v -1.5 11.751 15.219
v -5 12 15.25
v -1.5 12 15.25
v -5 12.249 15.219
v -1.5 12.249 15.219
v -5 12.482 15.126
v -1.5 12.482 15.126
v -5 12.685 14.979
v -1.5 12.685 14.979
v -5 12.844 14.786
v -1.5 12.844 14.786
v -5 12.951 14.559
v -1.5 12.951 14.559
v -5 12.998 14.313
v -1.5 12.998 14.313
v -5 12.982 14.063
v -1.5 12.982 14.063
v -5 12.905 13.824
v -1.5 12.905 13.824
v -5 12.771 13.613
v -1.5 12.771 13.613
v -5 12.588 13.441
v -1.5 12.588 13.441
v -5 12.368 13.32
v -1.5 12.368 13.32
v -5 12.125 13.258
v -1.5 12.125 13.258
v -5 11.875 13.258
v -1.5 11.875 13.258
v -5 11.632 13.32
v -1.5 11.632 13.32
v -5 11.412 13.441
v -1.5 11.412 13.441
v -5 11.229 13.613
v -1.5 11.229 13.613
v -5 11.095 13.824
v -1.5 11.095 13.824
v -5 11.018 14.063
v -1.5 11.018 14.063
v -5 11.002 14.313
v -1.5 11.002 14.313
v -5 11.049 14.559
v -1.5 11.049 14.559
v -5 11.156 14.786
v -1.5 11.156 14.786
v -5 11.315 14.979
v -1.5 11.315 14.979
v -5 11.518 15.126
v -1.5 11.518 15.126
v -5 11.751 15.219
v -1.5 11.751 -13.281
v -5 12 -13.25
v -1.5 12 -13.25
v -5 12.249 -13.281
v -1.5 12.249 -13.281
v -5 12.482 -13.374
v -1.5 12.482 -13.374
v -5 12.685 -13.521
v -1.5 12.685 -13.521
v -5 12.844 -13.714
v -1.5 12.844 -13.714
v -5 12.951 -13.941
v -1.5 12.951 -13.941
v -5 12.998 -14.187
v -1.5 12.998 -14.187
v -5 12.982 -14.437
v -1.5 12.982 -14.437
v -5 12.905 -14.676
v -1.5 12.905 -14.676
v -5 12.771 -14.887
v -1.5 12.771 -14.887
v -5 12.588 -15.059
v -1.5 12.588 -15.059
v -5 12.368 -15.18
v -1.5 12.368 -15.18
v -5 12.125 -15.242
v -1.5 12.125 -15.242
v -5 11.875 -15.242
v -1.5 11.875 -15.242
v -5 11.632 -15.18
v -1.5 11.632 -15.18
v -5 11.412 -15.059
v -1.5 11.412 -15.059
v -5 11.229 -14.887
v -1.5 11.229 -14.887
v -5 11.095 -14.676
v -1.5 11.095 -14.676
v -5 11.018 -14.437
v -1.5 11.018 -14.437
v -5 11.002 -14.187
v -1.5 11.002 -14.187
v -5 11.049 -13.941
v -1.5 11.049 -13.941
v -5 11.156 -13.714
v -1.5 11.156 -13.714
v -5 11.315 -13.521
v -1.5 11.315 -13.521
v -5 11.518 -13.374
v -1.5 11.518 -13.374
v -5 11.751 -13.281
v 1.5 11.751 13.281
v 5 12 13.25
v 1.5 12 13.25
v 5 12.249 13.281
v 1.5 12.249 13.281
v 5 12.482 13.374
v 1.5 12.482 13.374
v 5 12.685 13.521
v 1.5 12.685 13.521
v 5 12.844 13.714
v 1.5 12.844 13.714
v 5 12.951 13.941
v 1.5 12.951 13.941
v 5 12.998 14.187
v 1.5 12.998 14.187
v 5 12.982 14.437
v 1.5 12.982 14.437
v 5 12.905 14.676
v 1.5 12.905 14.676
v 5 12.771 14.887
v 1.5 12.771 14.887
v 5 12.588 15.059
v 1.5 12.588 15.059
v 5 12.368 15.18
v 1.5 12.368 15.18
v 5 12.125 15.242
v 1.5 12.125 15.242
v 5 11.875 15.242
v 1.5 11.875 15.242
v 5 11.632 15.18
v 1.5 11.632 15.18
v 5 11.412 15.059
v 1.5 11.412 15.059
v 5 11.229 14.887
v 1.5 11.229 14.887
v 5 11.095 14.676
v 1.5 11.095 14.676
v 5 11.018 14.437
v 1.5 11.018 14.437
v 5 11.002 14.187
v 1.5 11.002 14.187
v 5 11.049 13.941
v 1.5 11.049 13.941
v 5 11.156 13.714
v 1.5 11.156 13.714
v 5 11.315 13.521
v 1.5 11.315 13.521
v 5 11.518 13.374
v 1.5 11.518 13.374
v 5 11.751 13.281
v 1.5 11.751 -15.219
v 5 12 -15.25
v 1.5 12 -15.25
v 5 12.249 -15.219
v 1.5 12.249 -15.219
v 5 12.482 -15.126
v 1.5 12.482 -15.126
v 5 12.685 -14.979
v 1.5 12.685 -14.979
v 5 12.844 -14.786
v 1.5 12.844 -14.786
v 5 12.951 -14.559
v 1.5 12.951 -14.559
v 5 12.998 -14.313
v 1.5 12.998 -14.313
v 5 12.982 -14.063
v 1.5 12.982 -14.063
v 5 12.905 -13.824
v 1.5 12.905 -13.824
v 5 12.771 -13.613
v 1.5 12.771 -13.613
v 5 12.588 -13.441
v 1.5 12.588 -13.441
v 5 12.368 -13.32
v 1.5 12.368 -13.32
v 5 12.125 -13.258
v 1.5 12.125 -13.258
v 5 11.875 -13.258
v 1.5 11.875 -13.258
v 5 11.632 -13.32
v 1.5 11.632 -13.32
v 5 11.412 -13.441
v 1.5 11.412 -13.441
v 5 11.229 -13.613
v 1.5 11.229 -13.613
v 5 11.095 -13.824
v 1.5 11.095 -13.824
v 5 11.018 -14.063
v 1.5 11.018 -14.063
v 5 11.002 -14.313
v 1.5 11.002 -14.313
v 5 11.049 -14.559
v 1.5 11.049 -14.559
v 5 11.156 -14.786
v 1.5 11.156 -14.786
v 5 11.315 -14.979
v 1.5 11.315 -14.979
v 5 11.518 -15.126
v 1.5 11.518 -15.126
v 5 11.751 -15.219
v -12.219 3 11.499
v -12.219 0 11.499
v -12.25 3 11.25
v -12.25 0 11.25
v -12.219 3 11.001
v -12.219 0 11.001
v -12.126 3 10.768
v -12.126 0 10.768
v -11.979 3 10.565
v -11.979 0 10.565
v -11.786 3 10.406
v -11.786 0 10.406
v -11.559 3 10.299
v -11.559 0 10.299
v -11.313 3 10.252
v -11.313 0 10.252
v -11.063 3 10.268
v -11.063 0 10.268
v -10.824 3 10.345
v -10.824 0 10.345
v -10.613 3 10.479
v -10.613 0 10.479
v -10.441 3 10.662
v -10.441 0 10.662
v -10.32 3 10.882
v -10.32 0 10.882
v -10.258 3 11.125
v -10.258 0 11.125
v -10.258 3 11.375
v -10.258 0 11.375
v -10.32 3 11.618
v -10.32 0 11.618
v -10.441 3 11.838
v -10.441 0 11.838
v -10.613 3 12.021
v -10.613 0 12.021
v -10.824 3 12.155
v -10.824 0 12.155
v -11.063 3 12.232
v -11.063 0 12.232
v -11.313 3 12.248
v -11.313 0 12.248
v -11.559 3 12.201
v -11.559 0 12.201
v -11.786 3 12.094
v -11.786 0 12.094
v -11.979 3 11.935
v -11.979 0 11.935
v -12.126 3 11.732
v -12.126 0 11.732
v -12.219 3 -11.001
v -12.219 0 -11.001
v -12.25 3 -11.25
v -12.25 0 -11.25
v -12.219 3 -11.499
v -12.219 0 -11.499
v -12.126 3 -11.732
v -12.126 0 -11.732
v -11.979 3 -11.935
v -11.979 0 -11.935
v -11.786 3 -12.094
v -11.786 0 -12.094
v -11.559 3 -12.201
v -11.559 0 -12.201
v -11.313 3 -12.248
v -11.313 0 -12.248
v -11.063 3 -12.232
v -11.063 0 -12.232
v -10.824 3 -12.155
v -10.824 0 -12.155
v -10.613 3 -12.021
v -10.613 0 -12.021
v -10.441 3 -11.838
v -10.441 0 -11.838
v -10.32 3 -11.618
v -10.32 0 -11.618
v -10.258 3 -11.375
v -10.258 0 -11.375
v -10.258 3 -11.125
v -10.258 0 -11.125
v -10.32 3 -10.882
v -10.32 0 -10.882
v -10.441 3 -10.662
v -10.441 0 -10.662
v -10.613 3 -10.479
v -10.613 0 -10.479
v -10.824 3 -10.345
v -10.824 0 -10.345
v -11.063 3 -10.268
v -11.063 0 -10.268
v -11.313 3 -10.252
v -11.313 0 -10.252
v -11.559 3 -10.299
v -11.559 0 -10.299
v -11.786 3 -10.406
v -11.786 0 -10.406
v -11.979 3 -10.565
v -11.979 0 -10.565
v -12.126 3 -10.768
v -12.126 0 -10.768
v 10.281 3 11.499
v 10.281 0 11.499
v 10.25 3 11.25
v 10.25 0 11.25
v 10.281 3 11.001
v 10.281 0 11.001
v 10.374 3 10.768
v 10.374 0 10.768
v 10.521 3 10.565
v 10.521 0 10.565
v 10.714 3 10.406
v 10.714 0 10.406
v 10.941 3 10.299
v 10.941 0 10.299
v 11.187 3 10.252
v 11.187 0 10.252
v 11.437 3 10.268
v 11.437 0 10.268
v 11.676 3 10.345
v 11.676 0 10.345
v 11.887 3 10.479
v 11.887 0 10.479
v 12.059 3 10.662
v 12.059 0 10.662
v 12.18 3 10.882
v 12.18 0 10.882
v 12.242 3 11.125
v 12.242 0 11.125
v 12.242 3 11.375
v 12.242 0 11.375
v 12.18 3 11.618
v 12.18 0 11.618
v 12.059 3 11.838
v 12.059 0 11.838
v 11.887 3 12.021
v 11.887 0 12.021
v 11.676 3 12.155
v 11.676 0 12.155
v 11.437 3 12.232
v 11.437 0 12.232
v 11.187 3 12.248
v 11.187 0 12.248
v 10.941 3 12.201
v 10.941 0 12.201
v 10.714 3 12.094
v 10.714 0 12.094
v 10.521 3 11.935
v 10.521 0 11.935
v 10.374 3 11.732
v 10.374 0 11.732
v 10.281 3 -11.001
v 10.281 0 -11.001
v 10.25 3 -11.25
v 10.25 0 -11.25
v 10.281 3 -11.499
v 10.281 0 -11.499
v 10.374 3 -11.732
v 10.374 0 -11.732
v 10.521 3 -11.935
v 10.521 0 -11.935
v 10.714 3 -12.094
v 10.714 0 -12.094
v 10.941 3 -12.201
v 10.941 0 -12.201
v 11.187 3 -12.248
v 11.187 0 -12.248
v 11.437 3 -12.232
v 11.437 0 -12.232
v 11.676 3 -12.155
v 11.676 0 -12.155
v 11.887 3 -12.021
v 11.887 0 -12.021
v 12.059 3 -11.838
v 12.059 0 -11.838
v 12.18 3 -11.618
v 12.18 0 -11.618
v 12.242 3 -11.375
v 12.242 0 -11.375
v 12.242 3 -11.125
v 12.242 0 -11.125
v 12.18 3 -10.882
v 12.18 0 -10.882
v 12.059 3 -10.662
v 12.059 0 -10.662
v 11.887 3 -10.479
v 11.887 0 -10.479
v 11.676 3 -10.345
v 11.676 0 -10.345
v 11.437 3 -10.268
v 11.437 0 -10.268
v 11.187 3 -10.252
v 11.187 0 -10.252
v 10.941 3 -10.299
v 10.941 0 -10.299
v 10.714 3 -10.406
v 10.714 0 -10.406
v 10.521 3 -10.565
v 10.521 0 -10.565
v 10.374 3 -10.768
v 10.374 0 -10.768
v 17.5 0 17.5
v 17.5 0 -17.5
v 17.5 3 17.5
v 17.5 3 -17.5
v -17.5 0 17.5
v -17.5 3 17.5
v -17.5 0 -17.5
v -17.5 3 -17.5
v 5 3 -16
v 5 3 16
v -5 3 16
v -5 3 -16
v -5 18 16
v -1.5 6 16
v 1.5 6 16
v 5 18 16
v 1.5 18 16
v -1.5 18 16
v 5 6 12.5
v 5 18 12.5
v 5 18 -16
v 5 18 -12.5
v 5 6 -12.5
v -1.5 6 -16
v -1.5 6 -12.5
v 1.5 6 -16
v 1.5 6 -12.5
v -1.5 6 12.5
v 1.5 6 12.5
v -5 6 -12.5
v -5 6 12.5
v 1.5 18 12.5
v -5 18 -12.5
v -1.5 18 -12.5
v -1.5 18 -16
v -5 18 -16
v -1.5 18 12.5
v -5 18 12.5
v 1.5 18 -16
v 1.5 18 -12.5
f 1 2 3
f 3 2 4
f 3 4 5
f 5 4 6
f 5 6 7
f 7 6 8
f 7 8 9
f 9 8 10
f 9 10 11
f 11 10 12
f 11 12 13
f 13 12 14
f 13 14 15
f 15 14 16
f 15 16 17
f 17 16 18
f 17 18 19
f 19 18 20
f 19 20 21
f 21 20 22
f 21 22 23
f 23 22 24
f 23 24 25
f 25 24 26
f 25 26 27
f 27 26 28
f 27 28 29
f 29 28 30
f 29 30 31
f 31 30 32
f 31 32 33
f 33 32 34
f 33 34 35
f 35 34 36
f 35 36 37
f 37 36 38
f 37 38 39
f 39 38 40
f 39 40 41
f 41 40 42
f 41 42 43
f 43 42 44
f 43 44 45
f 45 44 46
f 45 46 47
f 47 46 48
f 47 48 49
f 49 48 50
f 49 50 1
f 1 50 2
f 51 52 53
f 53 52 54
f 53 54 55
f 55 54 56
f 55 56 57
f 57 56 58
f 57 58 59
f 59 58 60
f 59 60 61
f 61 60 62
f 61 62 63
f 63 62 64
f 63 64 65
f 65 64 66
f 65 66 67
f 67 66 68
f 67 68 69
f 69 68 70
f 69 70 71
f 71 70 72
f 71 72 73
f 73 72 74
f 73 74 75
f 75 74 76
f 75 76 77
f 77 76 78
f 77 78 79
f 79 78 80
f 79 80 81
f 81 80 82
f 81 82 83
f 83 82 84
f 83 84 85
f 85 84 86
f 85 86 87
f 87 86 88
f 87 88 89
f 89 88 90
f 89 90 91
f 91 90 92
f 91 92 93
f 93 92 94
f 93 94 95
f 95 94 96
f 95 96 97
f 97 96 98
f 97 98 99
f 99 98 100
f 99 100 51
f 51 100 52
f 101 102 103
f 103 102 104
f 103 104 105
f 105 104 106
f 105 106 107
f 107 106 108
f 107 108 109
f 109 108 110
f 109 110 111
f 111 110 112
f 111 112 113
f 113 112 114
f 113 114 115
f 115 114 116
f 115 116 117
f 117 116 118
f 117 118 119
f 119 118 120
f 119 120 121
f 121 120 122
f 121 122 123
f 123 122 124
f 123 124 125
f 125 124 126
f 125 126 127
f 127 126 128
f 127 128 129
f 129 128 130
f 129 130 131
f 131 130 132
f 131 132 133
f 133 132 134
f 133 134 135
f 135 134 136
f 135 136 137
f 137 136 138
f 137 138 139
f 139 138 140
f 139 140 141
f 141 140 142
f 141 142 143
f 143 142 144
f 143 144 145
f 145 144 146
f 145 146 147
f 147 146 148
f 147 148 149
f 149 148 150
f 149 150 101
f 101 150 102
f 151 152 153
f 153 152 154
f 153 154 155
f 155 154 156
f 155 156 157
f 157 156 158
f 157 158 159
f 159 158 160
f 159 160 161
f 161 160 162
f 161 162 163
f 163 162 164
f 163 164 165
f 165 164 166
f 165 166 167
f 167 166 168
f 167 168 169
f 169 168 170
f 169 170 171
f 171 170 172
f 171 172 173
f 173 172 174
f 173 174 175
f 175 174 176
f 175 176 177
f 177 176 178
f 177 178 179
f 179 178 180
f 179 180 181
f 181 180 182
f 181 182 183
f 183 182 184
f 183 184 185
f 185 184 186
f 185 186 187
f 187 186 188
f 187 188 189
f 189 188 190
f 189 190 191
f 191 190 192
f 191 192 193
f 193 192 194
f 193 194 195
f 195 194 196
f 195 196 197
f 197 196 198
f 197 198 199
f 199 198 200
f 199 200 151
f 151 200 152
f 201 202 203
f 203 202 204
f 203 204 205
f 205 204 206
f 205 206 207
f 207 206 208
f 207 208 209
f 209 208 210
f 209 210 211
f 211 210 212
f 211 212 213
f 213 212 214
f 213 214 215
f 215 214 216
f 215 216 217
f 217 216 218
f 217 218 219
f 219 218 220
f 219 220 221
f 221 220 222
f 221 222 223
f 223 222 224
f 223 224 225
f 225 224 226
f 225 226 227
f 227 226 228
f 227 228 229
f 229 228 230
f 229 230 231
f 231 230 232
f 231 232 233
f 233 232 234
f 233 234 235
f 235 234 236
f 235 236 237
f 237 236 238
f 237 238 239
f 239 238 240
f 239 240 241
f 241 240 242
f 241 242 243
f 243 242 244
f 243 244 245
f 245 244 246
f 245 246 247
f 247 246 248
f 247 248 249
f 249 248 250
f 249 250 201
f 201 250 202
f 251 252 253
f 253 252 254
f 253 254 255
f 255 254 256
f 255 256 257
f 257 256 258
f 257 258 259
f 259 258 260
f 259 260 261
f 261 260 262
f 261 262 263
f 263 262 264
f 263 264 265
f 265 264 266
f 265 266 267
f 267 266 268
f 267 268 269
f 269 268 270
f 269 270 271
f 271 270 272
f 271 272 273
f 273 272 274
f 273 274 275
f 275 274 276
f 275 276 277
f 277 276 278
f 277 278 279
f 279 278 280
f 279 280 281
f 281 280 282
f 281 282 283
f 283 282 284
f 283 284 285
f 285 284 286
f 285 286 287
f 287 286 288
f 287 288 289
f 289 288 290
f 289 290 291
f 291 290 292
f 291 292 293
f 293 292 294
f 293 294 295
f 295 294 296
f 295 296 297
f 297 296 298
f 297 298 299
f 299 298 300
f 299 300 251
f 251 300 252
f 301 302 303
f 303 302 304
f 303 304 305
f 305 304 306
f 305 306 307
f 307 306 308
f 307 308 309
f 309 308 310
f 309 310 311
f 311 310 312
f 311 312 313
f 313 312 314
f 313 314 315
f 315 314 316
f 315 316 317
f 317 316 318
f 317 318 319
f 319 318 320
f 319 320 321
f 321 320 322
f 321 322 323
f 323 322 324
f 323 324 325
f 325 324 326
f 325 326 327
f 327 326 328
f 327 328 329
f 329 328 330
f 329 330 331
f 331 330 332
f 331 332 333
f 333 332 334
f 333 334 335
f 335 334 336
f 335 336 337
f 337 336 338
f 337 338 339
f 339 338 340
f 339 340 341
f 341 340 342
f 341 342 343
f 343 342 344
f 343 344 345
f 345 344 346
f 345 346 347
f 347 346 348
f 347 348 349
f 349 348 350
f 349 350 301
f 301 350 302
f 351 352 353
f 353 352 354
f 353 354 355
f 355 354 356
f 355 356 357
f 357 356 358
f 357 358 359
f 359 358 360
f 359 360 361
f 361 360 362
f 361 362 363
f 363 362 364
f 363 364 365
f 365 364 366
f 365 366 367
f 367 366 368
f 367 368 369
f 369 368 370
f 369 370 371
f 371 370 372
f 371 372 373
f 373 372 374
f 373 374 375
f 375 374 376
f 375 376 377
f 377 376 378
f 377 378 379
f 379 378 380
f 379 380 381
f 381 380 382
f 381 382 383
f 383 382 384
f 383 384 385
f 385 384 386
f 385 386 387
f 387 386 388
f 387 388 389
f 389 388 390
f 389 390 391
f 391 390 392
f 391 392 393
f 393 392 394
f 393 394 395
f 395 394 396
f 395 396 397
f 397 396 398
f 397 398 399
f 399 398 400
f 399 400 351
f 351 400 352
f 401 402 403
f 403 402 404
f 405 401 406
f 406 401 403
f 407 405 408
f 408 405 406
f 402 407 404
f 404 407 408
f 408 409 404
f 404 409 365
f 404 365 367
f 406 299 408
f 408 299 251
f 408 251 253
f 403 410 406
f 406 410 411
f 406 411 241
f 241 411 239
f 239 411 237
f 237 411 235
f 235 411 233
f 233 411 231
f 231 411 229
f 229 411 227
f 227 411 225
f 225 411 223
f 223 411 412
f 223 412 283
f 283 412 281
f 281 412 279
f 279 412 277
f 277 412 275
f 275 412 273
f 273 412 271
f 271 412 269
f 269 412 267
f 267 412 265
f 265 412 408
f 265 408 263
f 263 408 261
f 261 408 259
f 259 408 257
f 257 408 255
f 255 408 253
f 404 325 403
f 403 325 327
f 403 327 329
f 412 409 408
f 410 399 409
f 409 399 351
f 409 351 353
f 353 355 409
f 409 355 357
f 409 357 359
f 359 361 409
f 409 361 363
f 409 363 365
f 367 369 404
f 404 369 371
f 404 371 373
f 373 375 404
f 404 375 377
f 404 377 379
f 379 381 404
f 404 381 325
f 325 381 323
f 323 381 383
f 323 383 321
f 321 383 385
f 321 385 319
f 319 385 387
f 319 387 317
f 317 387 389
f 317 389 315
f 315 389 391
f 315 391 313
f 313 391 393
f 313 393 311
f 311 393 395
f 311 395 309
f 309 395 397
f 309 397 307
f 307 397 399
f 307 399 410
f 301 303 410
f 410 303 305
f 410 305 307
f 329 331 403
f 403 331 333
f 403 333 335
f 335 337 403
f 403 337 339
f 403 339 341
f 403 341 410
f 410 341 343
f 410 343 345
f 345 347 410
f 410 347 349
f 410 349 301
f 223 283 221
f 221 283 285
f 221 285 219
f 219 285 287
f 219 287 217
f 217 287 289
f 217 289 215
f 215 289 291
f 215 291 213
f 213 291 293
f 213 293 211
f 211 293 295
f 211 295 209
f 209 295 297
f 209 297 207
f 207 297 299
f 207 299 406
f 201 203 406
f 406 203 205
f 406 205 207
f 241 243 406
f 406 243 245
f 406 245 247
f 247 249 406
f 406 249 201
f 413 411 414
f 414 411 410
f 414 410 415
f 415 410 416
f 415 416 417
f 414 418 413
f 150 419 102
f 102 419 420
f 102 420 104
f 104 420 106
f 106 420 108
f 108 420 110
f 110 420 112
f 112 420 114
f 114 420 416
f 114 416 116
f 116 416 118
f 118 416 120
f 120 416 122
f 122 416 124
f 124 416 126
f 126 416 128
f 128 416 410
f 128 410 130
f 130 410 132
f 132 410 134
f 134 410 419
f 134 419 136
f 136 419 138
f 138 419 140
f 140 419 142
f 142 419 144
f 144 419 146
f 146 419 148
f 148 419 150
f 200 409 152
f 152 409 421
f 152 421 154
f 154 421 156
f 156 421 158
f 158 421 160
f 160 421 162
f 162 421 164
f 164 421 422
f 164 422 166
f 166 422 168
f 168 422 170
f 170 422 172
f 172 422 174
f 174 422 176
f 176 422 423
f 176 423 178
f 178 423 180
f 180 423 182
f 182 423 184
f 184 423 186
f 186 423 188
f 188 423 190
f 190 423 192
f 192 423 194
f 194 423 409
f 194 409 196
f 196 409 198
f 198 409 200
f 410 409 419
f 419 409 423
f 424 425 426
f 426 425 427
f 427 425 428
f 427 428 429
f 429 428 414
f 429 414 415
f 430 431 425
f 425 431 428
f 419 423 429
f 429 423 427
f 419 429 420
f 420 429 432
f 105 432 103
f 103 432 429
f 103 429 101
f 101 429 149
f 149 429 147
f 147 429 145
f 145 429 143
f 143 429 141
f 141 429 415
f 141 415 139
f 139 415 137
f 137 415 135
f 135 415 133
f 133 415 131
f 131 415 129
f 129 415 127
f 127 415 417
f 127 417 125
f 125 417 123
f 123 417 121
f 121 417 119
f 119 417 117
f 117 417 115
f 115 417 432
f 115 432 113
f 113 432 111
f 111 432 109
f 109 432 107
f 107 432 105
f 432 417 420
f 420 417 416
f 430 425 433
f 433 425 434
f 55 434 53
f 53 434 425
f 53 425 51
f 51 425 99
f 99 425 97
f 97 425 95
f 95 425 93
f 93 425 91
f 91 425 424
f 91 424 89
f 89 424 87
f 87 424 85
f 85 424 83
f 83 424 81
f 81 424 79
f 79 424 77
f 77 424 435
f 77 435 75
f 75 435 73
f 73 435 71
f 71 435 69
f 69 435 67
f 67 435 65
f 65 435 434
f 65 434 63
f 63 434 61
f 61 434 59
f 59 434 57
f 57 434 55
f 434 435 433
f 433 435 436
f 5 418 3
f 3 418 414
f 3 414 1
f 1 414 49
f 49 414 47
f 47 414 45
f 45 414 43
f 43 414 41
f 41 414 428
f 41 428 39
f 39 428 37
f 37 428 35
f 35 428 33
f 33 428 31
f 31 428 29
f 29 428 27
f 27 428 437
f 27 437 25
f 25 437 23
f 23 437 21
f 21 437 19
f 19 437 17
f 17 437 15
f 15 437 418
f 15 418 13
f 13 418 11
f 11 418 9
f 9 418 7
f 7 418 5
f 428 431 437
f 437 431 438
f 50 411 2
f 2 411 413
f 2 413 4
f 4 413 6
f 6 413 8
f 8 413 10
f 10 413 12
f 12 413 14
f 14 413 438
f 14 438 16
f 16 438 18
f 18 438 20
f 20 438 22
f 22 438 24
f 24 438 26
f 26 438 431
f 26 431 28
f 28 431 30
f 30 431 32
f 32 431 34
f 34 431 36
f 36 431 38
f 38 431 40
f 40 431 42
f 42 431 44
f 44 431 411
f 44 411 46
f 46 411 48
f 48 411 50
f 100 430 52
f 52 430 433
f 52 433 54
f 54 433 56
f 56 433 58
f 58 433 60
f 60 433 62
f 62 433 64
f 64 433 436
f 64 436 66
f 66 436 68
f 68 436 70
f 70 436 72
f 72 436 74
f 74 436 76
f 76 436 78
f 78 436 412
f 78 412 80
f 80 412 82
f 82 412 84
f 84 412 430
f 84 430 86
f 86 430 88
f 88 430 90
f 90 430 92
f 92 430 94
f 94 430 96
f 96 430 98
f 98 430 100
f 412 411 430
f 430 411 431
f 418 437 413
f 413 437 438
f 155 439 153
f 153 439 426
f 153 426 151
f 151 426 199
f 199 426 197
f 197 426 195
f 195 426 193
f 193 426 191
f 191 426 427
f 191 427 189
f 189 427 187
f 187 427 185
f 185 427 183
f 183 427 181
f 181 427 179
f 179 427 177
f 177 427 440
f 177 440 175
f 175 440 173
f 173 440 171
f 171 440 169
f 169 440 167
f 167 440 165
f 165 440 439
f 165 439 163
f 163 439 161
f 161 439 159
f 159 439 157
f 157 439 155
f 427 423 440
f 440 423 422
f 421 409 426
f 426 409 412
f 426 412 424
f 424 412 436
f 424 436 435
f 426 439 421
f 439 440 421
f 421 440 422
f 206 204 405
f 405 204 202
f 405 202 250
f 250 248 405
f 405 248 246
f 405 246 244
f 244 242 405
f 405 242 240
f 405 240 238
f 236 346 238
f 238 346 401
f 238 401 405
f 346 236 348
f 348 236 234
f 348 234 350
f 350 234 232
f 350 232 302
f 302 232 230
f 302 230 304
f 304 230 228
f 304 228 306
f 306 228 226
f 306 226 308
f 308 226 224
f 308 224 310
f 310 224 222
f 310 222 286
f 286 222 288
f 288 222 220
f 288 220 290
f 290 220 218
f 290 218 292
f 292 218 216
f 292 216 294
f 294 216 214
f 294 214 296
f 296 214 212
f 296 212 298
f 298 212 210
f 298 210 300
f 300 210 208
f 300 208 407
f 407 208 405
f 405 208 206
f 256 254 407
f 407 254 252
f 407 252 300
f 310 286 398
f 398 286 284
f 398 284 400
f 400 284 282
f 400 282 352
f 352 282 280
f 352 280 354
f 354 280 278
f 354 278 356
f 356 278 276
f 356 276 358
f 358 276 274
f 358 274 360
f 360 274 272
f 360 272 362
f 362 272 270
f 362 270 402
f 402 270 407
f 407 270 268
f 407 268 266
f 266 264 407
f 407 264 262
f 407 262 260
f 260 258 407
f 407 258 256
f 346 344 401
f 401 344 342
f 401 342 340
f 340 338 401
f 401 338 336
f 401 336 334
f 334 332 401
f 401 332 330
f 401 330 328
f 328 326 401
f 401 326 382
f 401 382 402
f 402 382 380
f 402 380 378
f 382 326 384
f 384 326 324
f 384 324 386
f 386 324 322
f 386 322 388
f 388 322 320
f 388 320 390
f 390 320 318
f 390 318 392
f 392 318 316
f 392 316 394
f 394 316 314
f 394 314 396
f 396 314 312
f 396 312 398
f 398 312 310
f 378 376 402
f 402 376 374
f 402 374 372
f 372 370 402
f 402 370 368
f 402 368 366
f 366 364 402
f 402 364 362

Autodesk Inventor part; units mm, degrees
ref_plane "YZ Plane" through (0, 0, 0) normal (1, 0, 0) x (0, 1, 0)
ref_plane "XZ Plane" through (0, 0, 0) normal (0, 1, 0) x (-1, 0, 0)
ref_plane "XY Plane" through (0, 0, 0) normal (0, 0, 1) x (1, 0, 0)
sketch "Sketch1" plane through (0, 0, 0) normal (0, 1, 0) x (-1, 0, 0)
  circle A0 centre (11.25, 11.25) radius 1
  circle A1 centre (11.25, -11.25) radius 1
  circle A2 centre (-11.25, 11.25) radius 1
  circle A3 centre (-11.25, -11.25) radius 1
  line L0 (-17.5, 17.5) -> (17.5, 17.5)
  line L1 (17.5, 17.5) -> (17.5, -17.5)
  line L2 (17.5, -17.5) -> (-17.5, -17.5)
  line L3 (-17.5, -17.5) -> (-17.5, 17.5)
  line L4 (-5, 16) -> (5, 16)
  line L5 (5, 16) -> (5, -16)
  line L6 (5, -16) -> (-5, -16)
  line L7 (-5, -16) -> (-5, 16)
  line L8 (-5, -16) -> (-1.5, -16)
  line L9 (-1.5, -16) -> (-1.5, -12.5)
  line L10 (-1.5, -12.5) -> (-5, -12.5)
  line L11 (-5, -12.5) -> (-5, -16)
  line L12 (5, -16) -> (1.5, -16)
  line L13 (1.5, -16) -> (1.5, -12.5)
  line L14 (1.5, -12.5) -> (5, -12.5)
  line L15 (5, -12.5) -> (5, -16)
  line L16 (-5, 16) -> (-1.5, 16)
  line L17 (-1.5, 16) -> (-1.5, 12.5)
  line L18 (-1.5, 12.5) -> (-5, 12.5)
  line L19 (-5, 12.5) -> (-5, 16)
  line L20 (5, 16) -> (1.5, 16)
  line L21 (1.5, 16) -> (1.5, 12.5)
  line L22 (1.5, 12.5) -> (5, 12.5)
  line L23 (5, 12.5) -> (5, 16)
  point P0 (0, 0)
extrude "Extrusion1" add sketch "Sketch1" along normal blind 18 contours L4 L17 L18 L7 | L4 L5 L22 L21 | L10 L9 L6 L7 | L5 L6 L13 L14
extrude "Extrusion2" add sketch "Sketch1" along normal blind 6 contours L4 L21 L22 L5 L14 L13 L6 L9 L10 L7 L18 L17
extrude "Extrusion3" add sketch "Sketch1" along normal blind 3
sketch "Sketch2" plane through (5, 18, -12.5) normal (1, 0, 0) x (0, 0, -1)
  line L0 (-28.5, -12) -> (-25, -12) projected
  line L1 (3.5, -12) -> (0, -12) projected
  circle A0 centre (1.75, -6) radius 1
  circle A1 centre (-26.75, -6) radius 1
  point P0 (-12.5, -18)
extrude "Extrusion4" cut sketch "Sketch2" against normal blind 3.5
sketch "Sketch3" plane through (-5, 18, 12.5) normal (-1, 0, 0) x (0, 0, 1)
  circle A0 centre (-26.75, -6) radius 1 projected
  circle A1 centre (-26.75, -6) radius 1
  circle A2 centre (1.75, -6) radius 1 projected
  circle A3 centre (1.75, -6) radius 1
  point P0 (-12.5, -18)
extrude "Extrusion5" cut sketch "Sketch3" against normal blind 3.5 contours A0
extrude "Extrusion6" cut sketch "Sketch3" against normal blind 3.5 contours A2
properties part number "camera_plate"
